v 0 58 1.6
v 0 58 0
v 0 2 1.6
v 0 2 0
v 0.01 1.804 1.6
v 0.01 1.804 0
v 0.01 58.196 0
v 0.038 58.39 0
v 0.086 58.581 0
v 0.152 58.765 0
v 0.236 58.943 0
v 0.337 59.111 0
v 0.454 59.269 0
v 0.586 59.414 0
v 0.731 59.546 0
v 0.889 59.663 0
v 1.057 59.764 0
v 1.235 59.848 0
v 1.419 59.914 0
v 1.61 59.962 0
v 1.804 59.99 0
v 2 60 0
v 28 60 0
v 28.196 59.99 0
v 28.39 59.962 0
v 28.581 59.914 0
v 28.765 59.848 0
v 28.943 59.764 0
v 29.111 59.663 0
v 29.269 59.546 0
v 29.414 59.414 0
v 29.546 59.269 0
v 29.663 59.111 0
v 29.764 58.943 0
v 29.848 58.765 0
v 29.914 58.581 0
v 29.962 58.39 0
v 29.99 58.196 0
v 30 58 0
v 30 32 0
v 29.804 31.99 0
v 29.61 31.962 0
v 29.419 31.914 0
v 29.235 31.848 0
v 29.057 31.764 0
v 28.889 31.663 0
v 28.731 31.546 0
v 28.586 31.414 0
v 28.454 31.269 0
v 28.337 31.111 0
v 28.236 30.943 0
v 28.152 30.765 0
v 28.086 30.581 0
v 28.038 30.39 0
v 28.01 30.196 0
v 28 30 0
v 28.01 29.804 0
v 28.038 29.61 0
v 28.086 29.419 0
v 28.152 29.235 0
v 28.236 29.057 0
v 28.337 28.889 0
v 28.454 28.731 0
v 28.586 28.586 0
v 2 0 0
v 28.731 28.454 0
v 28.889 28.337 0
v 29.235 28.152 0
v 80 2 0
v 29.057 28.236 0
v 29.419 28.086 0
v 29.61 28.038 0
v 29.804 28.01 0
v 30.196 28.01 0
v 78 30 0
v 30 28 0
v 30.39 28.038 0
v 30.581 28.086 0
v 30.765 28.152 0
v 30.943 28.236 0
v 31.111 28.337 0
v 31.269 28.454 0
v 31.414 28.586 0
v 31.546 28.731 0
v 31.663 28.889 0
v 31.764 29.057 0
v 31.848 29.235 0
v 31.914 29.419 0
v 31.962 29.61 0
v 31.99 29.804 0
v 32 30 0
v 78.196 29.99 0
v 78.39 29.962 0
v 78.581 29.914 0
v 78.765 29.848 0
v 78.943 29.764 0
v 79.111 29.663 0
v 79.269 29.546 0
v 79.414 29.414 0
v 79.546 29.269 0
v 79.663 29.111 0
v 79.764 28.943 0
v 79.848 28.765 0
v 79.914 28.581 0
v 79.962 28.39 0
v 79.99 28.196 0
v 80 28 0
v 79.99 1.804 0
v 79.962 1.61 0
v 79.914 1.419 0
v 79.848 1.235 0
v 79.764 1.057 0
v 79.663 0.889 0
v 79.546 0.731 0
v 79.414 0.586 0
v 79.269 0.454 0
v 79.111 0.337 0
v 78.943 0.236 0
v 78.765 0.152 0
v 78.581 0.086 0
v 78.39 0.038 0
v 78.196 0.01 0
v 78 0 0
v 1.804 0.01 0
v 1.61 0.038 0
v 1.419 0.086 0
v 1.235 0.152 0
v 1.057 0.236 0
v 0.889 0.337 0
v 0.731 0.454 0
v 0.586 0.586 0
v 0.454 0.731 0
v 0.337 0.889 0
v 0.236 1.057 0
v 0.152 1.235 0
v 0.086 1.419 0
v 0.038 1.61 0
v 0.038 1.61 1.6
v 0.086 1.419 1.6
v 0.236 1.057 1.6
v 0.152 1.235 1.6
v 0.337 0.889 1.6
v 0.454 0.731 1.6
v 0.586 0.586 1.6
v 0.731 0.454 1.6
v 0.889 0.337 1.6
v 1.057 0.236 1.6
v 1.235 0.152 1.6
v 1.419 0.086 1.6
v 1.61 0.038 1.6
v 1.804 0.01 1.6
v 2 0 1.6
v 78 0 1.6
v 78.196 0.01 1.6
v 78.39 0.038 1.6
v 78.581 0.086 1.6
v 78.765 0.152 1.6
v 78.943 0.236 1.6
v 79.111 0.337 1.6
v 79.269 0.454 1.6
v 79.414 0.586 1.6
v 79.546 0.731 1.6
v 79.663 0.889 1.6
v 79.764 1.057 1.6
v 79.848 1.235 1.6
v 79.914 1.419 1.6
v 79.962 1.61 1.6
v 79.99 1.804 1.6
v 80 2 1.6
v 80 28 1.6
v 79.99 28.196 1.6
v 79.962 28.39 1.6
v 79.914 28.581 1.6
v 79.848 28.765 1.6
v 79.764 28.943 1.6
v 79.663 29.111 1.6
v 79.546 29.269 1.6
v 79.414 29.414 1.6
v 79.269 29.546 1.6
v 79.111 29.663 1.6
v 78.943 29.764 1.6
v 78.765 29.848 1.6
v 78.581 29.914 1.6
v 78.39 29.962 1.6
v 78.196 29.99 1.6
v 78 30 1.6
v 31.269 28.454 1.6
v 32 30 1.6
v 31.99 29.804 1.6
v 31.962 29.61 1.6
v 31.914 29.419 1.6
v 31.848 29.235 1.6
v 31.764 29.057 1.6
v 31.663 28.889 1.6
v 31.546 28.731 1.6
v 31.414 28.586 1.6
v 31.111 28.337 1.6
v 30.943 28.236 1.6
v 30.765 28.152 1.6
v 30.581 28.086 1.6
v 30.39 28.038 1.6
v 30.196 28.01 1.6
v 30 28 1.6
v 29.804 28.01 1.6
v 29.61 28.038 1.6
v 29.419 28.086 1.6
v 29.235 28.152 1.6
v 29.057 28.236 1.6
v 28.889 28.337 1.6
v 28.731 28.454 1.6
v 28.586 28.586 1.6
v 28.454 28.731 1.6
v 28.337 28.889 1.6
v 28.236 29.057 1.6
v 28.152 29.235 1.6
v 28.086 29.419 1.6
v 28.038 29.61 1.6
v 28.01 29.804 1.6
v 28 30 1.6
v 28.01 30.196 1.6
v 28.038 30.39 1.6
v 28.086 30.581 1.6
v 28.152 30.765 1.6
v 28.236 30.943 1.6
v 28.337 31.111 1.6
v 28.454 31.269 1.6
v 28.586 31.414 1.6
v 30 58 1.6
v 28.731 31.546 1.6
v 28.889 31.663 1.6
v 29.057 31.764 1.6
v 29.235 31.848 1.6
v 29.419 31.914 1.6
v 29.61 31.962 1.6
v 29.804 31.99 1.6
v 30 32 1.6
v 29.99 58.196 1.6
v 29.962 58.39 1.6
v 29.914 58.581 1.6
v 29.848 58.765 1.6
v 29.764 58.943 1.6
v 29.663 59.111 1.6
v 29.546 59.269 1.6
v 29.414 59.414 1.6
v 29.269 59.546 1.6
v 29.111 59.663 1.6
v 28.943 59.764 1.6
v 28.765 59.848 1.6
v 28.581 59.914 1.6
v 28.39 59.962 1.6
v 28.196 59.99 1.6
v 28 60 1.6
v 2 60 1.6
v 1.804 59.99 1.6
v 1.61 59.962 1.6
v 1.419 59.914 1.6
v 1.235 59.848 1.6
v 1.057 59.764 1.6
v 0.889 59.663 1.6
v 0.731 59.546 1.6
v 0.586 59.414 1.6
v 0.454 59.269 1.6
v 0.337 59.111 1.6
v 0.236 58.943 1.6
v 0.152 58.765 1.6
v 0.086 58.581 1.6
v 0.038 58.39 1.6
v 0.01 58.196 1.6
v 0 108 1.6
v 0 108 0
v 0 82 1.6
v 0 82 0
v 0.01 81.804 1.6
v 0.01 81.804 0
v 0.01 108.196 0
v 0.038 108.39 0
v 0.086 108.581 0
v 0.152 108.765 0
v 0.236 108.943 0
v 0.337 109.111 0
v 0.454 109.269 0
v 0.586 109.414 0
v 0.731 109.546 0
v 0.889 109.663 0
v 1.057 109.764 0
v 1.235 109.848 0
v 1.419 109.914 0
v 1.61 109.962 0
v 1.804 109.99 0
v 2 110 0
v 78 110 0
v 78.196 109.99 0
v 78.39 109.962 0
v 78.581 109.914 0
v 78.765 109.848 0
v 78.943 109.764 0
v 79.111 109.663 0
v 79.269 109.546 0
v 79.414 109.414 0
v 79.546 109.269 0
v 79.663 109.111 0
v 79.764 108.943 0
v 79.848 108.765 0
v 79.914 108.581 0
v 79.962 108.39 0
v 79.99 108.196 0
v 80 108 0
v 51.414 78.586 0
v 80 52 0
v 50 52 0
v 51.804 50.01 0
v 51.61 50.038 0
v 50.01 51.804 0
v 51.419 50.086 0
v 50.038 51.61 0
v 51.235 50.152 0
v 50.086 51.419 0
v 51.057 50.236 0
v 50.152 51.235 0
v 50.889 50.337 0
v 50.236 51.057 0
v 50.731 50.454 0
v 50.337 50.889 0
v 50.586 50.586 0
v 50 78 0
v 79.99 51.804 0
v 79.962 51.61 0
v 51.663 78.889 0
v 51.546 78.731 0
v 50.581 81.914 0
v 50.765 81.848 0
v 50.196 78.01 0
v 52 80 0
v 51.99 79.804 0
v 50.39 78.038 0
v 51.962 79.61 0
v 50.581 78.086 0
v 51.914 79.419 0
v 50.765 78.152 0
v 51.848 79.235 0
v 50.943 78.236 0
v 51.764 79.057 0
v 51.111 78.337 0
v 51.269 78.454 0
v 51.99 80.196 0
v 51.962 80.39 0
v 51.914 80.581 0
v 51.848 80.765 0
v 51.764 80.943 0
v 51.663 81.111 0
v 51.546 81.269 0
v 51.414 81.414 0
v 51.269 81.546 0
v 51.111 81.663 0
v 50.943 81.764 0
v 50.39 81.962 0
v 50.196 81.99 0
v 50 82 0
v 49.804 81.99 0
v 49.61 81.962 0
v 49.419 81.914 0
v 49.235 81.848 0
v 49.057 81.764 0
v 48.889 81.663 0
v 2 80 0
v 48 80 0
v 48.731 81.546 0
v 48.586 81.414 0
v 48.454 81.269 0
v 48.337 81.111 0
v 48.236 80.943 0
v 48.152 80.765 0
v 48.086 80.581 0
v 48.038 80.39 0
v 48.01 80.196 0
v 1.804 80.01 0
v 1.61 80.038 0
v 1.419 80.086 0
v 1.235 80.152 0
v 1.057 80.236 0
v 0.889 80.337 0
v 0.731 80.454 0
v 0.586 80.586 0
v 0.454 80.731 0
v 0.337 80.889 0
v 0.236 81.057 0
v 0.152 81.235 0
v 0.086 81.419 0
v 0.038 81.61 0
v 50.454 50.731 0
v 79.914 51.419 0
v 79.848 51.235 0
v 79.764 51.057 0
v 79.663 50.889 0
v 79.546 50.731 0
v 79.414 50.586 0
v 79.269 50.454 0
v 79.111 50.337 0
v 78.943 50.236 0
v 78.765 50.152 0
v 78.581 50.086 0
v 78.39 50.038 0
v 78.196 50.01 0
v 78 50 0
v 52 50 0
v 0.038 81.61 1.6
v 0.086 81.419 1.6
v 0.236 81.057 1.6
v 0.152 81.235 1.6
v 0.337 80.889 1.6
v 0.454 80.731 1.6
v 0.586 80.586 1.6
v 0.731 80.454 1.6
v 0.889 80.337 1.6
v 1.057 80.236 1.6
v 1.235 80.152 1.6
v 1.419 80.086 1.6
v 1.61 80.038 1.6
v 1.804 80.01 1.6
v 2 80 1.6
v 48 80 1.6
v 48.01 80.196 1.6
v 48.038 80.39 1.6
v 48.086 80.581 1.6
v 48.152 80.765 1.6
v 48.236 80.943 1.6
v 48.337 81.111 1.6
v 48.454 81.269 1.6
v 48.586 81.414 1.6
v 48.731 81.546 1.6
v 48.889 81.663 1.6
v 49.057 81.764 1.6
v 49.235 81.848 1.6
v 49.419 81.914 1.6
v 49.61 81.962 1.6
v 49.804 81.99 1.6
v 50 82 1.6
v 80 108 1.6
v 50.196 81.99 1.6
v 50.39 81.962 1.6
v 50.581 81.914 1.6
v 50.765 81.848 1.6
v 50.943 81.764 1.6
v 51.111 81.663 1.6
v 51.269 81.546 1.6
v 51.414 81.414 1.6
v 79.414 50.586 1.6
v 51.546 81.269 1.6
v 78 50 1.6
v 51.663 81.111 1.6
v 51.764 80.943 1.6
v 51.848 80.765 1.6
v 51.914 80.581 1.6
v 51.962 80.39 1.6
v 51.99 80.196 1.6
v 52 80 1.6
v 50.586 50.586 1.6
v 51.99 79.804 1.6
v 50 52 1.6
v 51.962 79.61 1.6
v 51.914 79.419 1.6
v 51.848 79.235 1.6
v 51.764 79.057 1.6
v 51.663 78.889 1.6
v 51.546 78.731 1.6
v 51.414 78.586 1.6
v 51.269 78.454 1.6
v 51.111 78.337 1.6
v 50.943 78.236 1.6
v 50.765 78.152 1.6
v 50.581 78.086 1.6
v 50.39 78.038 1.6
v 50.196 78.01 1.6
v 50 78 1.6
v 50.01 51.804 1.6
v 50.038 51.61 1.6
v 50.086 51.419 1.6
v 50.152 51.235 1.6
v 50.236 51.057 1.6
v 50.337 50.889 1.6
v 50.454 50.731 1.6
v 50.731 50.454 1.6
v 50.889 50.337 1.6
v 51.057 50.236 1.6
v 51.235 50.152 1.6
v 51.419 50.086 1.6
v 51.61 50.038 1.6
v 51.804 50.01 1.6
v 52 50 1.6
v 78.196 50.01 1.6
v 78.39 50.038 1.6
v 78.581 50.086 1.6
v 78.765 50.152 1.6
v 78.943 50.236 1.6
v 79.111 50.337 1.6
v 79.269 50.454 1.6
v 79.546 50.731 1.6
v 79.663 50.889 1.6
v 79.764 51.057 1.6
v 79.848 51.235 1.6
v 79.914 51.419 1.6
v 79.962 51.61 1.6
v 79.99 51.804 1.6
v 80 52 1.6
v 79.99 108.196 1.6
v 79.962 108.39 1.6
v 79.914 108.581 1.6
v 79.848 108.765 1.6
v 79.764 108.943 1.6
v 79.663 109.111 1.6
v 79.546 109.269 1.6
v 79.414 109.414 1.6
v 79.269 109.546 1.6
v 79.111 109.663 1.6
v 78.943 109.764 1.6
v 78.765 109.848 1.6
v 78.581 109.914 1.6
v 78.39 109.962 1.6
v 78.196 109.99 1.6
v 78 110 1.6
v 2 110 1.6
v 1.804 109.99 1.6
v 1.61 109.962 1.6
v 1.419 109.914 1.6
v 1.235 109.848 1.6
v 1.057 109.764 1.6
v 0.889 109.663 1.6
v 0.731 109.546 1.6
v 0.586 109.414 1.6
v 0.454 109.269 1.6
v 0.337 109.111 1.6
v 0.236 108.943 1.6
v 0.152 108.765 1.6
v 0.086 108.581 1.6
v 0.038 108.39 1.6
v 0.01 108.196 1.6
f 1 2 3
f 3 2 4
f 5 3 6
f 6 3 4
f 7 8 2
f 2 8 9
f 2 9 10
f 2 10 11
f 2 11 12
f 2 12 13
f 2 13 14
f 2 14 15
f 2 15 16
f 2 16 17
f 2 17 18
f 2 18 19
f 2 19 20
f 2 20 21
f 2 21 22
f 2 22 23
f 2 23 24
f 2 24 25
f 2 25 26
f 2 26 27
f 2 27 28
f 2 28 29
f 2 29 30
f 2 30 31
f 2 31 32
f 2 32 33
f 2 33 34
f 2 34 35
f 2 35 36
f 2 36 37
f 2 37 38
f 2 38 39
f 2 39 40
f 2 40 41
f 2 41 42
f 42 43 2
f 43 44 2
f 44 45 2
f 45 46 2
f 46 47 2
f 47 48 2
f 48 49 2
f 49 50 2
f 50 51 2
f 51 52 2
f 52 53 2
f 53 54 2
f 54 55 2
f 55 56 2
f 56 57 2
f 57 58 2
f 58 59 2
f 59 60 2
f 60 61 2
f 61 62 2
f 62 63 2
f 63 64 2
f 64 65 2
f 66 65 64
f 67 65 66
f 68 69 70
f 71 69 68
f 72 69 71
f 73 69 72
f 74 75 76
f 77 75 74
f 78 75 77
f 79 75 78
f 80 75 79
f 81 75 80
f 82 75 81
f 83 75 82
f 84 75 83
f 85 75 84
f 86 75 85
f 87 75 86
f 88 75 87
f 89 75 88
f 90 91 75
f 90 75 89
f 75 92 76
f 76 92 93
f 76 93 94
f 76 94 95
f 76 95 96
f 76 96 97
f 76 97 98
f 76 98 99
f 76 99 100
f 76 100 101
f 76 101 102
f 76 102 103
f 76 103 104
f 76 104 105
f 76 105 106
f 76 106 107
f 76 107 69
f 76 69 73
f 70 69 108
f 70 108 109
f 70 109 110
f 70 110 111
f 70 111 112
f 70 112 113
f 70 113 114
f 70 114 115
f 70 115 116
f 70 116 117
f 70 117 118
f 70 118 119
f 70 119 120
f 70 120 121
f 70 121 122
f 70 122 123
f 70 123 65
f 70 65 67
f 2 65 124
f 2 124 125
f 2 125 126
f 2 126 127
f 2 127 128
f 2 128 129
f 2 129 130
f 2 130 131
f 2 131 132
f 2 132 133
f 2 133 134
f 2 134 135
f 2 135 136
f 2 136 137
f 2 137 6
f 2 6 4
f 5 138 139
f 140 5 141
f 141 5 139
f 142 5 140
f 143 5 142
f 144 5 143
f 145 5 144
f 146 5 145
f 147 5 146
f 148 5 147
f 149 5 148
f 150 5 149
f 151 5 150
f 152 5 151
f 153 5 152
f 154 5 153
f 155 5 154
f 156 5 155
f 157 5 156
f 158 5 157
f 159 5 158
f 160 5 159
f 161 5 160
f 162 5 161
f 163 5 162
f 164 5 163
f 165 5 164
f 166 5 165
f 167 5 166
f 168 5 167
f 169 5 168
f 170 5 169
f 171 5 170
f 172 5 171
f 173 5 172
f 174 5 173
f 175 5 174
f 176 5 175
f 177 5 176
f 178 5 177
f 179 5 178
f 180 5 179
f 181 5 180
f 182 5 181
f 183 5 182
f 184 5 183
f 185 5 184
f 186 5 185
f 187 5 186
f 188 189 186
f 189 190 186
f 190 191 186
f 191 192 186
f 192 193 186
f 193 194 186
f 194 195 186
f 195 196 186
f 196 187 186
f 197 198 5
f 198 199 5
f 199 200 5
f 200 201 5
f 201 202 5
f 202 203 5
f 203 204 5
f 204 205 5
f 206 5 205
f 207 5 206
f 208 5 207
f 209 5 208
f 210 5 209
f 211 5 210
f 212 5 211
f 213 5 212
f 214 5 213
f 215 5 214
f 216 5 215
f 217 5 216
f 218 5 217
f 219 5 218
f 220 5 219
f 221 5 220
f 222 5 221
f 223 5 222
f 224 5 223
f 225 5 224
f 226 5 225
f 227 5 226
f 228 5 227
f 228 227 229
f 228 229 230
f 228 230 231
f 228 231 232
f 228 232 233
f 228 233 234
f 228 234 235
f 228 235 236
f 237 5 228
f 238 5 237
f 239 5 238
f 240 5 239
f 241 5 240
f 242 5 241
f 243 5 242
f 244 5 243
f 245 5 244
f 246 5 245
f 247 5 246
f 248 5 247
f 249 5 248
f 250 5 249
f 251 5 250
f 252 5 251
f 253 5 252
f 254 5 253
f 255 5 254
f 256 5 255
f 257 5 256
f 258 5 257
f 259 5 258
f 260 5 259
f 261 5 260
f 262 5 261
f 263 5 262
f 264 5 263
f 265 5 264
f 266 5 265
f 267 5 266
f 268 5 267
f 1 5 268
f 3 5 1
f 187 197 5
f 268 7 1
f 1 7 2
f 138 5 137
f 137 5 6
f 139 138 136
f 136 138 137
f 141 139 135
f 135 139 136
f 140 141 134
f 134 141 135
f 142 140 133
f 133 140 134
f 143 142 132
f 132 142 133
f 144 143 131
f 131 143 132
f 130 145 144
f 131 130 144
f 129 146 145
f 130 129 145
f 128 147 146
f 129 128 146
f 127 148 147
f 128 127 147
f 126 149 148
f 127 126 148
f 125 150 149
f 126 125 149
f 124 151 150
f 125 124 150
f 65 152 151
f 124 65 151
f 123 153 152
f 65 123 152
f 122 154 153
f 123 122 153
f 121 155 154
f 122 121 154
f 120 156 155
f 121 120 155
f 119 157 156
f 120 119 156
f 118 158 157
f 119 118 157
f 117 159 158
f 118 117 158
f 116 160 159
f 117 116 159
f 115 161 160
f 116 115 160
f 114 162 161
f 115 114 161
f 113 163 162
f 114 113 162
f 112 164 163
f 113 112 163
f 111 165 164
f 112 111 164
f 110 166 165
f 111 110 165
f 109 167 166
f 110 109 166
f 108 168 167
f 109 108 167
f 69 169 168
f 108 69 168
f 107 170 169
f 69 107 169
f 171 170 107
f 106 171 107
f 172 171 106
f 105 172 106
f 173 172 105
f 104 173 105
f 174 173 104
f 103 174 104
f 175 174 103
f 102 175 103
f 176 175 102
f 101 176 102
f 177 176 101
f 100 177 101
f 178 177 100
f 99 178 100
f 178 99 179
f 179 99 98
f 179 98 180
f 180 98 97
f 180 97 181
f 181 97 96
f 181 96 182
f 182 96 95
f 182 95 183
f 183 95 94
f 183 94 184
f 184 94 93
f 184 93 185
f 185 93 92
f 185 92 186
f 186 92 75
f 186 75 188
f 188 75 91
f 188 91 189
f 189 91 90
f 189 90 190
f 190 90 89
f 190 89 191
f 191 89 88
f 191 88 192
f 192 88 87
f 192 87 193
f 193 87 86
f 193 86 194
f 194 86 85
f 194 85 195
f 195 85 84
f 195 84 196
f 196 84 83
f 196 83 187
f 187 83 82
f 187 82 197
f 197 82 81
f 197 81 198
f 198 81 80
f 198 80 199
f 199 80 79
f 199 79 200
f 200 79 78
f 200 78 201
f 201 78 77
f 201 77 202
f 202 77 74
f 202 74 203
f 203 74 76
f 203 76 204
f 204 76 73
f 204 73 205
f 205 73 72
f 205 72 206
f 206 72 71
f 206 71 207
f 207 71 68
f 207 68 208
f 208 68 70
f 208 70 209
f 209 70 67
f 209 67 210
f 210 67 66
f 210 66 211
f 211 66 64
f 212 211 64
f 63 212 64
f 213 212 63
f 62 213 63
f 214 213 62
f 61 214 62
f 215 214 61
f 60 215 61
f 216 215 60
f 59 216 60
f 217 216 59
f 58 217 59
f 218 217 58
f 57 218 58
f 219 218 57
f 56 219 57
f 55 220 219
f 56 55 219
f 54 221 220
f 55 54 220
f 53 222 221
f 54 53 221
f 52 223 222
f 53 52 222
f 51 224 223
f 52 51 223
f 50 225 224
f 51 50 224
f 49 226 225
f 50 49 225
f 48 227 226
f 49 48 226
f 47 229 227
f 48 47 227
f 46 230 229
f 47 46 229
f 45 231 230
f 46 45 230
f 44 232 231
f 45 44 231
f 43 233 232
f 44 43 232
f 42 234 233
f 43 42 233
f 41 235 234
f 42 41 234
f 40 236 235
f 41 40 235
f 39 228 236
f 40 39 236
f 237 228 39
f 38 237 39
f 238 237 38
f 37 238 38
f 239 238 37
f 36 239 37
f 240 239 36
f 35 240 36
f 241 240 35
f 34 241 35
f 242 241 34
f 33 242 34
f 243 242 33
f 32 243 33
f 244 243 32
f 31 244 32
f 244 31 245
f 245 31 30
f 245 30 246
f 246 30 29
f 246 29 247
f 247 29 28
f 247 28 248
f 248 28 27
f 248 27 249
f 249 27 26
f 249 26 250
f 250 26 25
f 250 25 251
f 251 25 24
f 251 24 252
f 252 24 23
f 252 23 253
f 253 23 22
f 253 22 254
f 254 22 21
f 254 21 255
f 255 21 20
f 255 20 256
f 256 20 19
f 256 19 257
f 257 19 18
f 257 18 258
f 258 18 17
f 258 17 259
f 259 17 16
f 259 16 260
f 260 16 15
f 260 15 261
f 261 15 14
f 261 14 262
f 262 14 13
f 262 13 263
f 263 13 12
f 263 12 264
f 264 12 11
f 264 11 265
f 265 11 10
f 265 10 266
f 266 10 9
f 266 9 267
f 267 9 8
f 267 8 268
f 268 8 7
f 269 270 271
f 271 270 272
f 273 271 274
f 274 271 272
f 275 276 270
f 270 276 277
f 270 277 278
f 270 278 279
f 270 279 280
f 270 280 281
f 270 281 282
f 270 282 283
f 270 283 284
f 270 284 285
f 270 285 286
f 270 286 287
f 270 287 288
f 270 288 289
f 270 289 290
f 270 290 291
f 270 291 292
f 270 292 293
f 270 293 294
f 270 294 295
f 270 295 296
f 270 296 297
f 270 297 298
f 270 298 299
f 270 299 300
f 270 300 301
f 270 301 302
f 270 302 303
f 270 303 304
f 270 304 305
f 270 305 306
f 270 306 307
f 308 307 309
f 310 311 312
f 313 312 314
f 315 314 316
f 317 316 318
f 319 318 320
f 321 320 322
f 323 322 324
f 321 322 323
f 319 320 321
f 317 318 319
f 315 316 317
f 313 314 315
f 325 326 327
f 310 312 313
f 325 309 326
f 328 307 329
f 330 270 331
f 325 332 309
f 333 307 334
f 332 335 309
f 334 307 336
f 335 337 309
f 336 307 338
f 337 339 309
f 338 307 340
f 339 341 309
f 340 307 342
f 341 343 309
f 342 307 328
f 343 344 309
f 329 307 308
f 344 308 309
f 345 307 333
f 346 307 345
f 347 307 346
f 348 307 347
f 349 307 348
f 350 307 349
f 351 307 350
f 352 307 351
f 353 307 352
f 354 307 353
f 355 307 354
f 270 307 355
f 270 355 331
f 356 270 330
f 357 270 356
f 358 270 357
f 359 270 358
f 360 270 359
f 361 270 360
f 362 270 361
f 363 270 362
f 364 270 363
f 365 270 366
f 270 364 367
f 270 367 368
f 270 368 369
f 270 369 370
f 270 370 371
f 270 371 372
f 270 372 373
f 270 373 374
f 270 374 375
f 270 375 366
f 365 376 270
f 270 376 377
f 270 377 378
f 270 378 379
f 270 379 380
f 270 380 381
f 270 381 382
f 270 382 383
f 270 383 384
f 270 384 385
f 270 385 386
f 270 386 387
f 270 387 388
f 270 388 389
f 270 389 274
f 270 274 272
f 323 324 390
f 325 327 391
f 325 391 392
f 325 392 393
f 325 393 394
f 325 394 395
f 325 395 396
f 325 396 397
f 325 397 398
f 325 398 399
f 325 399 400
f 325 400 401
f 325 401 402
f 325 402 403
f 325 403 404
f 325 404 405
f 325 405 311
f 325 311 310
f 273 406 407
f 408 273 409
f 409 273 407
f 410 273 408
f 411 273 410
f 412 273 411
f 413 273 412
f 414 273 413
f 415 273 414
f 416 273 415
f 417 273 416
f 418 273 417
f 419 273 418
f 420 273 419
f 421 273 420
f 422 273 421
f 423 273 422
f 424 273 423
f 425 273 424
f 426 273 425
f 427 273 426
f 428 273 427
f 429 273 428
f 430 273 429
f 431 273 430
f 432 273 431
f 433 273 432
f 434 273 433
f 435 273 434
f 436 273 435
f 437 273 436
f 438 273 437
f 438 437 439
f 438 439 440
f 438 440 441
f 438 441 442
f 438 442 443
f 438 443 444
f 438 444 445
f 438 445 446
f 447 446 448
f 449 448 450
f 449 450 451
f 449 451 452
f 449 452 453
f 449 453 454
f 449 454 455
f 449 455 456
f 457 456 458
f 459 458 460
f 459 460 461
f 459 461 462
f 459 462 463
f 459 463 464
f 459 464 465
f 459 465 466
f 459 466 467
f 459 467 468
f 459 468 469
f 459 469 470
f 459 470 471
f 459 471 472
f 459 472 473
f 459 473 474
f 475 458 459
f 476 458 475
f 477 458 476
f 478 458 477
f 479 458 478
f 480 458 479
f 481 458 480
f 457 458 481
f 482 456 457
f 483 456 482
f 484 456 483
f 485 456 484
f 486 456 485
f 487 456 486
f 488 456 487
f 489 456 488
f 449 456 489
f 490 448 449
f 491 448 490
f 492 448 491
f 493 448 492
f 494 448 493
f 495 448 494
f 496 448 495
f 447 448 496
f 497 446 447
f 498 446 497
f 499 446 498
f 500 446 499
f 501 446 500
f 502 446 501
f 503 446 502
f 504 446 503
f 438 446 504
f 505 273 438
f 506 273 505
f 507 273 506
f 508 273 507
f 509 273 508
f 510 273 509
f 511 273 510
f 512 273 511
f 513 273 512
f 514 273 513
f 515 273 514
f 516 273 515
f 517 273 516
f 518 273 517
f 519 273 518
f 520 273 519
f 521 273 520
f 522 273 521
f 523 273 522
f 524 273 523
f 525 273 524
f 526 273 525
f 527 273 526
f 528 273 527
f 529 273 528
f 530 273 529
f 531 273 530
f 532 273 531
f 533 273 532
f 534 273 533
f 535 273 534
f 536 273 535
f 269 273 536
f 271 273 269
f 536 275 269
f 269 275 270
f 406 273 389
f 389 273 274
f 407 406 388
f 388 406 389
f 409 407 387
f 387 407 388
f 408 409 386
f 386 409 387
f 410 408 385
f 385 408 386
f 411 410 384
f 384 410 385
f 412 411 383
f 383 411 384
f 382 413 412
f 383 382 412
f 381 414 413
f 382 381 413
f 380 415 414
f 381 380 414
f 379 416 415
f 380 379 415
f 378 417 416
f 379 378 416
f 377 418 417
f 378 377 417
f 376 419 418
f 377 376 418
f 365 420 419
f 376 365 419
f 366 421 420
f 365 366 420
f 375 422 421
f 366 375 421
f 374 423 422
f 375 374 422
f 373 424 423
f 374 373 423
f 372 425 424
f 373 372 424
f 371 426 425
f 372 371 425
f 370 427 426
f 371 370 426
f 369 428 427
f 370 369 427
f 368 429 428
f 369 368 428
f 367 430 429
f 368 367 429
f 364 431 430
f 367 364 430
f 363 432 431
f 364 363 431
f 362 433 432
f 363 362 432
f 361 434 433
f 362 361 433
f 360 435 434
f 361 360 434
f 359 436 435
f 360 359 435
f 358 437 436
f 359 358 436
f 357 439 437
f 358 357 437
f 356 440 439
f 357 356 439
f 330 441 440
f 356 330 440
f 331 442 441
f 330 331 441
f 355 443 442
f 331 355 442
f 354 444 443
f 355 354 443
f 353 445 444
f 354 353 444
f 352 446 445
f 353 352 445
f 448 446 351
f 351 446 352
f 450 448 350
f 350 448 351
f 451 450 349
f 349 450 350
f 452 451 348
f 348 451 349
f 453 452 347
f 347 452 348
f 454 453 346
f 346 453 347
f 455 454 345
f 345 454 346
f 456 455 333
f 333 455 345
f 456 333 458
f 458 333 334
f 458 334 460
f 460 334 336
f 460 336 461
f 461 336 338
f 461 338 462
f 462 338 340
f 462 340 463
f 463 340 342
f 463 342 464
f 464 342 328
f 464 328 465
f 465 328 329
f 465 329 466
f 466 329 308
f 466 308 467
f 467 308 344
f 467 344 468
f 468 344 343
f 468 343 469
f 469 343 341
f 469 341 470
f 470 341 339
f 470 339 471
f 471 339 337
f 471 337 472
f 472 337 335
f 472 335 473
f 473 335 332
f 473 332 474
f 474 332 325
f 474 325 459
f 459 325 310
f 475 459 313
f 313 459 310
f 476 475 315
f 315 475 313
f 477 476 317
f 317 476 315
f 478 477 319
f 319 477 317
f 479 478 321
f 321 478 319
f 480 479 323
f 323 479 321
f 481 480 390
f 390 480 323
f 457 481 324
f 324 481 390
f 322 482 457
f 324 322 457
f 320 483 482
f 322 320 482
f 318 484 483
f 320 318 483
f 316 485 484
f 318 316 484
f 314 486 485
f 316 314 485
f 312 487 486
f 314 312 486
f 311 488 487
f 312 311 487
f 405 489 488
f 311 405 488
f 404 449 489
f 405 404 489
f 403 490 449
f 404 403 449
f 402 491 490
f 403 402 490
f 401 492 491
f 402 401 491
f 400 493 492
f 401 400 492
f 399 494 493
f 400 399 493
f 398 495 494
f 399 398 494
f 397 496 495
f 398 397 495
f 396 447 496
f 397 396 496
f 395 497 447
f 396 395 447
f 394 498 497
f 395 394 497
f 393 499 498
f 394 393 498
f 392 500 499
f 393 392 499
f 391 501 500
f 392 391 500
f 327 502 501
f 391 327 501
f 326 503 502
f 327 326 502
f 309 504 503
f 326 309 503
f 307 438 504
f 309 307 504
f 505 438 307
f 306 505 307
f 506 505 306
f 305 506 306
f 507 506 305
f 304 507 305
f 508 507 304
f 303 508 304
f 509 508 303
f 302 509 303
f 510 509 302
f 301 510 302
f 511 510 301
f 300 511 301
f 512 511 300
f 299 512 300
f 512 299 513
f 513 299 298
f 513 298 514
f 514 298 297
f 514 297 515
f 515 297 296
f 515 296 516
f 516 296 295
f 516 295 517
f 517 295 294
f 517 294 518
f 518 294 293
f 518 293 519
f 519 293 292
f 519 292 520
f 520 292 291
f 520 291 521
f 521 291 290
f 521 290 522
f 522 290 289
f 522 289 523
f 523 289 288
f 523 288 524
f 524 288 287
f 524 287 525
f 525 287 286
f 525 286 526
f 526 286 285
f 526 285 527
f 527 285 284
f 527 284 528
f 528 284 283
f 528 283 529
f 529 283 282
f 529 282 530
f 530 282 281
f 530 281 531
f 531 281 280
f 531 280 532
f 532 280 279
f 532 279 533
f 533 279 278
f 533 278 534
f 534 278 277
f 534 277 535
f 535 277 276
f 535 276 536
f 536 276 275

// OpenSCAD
// OpenScad L shape parmetric bracket for printing PCBs with solder
// paste stencils. Similar to the ones shown at 
// http://www.sunstone.com/pcb-products/pcb-solder-stencils/how-to-use 
// but it's parametric to you can adapt to your size and thickness.
// 
// Circle roundness. Higher is smoother but slower to compile.

/* [global] */

// Parts to print.
num_parts = 2;  // [1:Single, 2:Pair]

// Nominal thickness of the bracket.
thickness = 1.6;  

// Inner length [mm] of cw hand.
inner_length_1 = 50;

// Inner length [mm] of ccw hand.
inner_length_2 = 30;

// Width [mm] of cw hand.
width_1 = 30;

// Width [mm] of ccw hand.
width_2 = 30;

// Radius of external corners [mm].
corner_radius=2;

// Radius of center hole [mm].
center_hole_radius = 2;

// Seperation [mm] when printing two pieces.
pieces_seperation = 20;

/* [hidden] */

// Reduce to 18 for quick debugging.
$fn=64;

// Small distances. Used to make sure relationship between
// shapes are well defined. Do not effect dimensions of main object.
eps = 0.001;
eps2 = 2*eps;

// A simple L shape.
module l_shape(xl, yl, zl, xw, yw) {
  difference() {
    cube([yw+xl, xw+yl, zl]);
    translate([yw, xw, -eps]) 
        cube([xl+eps, yl+eps, zl+eps2]);
  }
}

// A L shape with rounded corners.
module rounded_l_shape(xl, yl, zl, xw, yw, r) {
  translate([r, r, 0]) minkowski() {
    l_shape(xl, yl, zl/2, xw-2*r, yw-2*r);
    cylinder(r=r, h=zl/2);
  }  
}

module first_part() {
 difference() {
    rounded_l_shape(inner_length_1, inner_length_2, thickness, 
        width_1, width_2, corner_radius);
    translate([width_2, width_1, 0]) 
        cylinder(r=center_hole_radius, h=thickness+eps);
  }
}

module second_part() {
  x_offset = inner_length_1 + width_2 + 
      max(0, width_2 + pieces_seperation - inner_length_1);
  y_offset = inner_length_2 + 2*width_1 + pieces_seperation;
  translate([x_offset, y_offset, 0]) rotate([0, 0, 180]) first_part();
}
 
// A L shape with rounded corners and center release hole.
module main() {
  first_part();
  if (num_parts > 1) {
    second_part();
  }
}

main();
